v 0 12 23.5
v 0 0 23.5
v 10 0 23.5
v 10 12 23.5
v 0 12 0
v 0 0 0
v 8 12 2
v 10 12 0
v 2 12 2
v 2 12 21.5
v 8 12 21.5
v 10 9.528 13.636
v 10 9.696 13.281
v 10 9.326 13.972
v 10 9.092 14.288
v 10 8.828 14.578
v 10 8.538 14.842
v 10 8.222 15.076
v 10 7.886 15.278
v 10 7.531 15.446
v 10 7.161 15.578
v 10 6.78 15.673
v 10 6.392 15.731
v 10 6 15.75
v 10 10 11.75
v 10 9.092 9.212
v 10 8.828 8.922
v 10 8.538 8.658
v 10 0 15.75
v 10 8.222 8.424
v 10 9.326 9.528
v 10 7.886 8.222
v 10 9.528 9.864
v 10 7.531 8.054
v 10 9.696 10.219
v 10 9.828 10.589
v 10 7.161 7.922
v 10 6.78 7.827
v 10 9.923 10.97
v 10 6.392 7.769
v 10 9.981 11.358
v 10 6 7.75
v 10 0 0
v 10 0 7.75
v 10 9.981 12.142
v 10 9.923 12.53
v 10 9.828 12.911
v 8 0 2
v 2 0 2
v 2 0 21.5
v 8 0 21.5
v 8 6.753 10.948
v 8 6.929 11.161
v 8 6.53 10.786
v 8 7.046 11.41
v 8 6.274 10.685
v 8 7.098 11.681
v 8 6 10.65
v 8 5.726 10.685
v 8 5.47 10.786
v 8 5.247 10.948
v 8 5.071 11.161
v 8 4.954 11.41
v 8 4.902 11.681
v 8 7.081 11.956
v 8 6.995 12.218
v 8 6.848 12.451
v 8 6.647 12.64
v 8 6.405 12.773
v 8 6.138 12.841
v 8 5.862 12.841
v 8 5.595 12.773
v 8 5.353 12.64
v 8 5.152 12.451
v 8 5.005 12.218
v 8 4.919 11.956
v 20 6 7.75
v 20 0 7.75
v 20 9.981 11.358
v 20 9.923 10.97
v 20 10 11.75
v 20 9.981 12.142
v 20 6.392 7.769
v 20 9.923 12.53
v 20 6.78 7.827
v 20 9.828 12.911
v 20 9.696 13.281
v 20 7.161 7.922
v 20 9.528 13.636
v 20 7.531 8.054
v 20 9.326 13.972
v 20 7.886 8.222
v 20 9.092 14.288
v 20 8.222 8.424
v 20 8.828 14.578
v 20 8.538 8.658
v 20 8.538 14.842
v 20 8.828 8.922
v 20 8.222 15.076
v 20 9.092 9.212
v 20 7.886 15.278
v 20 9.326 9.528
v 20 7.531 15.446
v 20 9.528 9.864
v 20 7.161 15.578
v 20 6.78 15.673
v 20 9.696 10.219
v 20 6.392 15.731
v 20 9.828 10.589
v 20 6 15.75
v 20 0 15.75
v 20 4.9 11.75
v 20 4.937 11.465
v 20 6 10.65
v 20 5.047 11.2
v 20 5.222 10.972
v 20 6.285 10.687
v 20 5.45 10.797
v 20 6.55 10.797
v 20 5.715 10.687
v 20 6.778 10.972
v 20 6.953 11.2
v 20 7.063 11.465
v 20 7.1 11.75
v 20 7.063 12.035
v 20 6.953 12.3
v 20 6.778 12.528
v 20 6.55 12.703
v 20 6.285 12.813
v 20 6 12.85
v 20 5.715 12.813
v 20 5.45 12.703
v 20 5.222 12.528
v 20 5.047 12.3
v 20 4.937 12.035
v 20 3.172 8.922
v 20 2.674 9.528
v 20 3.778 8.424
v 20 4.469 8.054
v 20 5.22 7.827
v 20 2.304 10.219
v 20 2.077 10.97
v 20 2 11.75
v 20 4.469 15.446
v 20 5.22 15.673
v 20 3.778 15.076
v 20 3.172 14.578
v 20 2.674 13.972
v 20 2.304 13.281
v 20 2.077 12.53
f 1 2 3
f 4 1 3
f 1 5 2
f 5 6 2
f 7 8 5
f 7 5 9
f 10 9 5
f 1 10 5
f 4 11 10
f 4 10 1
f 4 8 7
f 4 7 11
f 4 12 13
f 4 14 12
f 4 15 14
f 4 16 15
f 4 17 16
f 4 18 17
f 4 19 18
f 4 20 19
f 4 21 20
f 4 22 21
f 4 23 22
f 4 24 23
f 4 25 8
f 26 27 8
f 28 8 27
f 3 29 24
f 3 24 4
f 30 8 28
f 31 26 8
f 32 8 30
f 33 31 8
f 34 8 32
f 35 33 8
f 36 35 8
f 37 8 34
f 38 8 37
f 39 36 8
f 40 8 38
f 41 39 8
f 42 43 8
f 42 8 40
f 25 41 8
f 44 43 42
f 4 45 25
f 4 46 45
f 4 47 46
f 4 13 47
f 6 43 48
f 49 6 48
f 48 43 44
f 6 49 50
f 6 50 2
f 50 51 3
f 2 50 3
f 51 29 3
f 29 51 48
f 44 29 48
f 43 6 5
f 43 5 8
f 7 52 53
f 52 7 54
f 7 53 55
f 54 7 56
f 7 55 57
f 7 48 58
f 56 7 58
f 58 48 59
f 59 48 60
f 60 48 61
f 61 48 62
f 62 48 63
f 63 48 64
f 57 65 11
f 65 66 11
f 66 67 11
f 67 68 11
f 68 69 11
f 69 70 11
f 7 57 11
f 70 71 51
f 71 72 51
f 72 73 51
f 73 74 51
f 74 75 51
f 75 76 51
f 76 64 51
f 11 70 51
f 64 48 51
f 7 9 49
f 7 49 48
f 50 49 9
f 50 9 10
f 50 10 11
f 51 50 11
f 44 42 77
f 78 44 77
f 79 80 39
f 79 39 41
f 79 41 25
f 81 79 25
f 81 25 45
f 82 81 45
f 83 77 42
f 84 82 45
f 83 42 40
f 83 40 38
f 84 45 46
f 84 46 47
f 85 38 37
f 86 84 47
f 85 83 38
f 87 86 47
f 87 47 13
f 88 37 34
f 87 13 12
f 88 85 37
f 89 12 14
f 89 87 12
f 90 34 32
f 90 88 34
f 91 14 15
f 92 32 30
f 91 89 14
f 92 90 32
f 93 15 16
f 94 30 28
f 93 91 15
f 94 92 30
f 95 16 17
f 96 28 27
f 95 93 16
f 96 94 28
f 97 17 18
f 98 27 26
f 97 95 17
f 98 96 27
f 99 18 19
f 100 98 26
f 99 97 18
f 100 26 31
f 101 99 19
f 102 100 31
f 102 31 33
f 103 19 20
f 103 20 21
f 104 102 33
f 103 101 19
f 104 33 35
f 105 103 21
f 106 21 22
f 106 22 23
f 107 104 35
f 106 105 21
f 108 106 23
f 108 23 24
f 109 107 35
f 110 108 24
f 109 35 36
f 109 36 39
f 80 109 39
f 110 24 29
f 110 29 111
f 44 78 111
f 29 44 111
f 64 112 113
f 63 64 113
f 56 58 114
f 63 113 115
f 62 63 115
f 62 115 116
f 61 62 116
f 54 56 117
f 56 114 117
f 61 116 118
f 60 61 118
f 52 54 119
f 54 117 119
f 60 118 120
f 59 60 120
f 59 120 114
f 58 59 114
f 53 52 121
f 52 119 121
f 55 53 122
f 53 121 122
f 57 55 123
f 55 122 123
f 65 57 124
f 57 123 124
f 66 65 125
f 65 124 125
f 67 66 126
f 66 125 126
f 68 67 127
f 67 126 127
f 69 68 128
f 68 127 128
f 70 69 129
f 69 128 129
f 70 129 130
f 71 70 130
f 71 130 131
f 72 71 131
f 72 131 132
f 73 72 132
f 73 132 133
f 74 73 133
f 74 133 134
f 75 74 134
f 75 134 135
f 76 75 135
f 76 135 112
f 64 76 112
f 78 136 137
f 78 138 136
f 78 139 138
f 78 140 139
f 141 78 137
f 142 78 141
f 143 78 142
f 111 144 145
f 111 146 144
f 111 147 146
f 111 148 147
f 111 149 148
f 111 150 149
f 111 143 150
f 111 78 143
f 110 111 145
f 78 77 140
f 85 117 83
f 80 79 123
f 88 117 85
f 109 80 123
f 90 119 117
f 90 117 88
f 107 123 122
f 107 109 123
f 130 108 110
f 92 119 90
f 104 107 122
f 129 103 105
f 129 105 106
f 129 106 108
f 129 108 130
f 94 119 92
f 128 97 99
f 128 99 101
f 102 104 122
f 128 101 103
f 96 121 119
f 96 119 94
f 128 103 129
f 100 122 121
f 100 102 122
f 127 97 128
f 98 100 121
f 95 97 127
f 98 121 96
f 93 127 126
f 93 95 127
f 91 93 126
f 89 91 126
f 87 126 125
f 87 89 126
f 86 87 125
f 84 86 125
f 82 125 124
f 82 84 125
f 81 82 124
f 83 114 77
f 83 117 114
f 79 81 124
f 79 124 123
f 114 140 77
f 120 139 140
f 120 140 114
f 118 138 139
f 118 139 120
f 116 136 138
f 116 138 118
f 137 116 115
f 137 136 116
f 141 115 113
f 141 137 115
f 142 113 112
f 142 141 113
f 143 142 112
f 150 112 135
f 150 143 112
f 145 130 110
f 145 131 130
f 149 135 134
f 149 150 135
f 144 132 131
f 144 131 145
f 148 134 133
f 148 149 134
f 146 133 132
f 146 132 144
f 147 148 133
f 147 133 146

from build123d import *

# Parameters (mm, degrees)
CYLINDER001_R           = 1.1
CYLINDER001_DEPTH       = 15
CYLINDER001_PITCH_ANGLE = 90
BOX002_W                = 10
BOX002_H                = 6
BOX002_DEPTH            = 8
CYLINDER_R              = 4
CYLINDER_DEPTH          = 10
CYLINDER_PITCH_ANGLE    = 90
BOX001_W                = 6
BOX001_H                = 12
BOX001_DEPTH            = 19.5
BOX_W                   = 10
BOX_H                   = 12
BOX_DEPTH               = 23.5


with BuildPart() as cylinder001:
    # Cylinder001 → Cylinder001 (new body)
    with BuildSketch(Plane.XY):
        Circle(CYLINDER001_R)
    extrude(amount=CYLINDER001_DEPTH)


with BuildPart() as cylinder001_1:
    # Cylinder001 pitch: moved
    add(cylinder001.part.rotate(Axis((0, 0, 0), (0, 1, 0)), CYLINDER001_PITCH_ANGLE))


with BuildPart() as cylinder001_2:
    # Cylinder001 placement: moved
    add(cylinder001_1.part.moved(Location((7, 6, 11.75))))


with BuildPart() as cube002:
    # Box002 → Box002 (new body)
    with BuildSketch(Plane(origin=(10, 0, 7.75), x_dir=(1, 0, 0), z_dir=(0, 0, 1))):
        with Locations((5, 3)):
            Rectangle(BOX002_W, BOX002_H)
    extrude(amount=BOX002_DEPTH)


with BuildPart() as cylinder:
    # Cylinder → Cylinder (new body)
    with BuildSketch(Plane.XY):
        Circle(CYLINDER_R)
    extrude(amount=CYLINDER_DEPTH)


with BuildPart() as cylinder_1:
    # Cylinder pitch: moved
    add(cylinder.part.rotate(Axis((0, 0, 0), (0, 1, 0)), CYLINDER_PITCH_ANGLE))


with BuildPart() as cylinder_2:
    # Cylinder placement: moved
    add(cylinder_1.part.moved(Location((10, 6, 11.75))))


with BuildPart() as cube001:
    # Box001 → Box001 (new body)
    with BuildSketch(Plane(origin=(2, 0, 2), x_dir=(1, 0, 0), z_dir=(0, 0, 1))):
        with Locations((3, 6)):
            Rectangle(BOX001_W, BOX001_H)
    extrude(amount=BOX001_DEPTH)


with BuildPart() as cut001:
    # Box → Box (new body)
    with BuildSketch(Plane.XY):
        with Locations((5, 6)):
            Rectangle(BOX_W, BOX_H)
    extrude(amount=BOX_DEPTH)

    # Cut: cut Cube001
    add(cube001.part, mode=Mode.SUBTRACT)

    # Fusion: union Cylinder
    add(cylinder_2.part)

    # Fusion001: union Cube002
    add(cube002.part)

    # Cut001: cut Cylinder001
    add(cylinder001_2.part, mode=Mode.SUBTRACT)


solid = cut001.part
